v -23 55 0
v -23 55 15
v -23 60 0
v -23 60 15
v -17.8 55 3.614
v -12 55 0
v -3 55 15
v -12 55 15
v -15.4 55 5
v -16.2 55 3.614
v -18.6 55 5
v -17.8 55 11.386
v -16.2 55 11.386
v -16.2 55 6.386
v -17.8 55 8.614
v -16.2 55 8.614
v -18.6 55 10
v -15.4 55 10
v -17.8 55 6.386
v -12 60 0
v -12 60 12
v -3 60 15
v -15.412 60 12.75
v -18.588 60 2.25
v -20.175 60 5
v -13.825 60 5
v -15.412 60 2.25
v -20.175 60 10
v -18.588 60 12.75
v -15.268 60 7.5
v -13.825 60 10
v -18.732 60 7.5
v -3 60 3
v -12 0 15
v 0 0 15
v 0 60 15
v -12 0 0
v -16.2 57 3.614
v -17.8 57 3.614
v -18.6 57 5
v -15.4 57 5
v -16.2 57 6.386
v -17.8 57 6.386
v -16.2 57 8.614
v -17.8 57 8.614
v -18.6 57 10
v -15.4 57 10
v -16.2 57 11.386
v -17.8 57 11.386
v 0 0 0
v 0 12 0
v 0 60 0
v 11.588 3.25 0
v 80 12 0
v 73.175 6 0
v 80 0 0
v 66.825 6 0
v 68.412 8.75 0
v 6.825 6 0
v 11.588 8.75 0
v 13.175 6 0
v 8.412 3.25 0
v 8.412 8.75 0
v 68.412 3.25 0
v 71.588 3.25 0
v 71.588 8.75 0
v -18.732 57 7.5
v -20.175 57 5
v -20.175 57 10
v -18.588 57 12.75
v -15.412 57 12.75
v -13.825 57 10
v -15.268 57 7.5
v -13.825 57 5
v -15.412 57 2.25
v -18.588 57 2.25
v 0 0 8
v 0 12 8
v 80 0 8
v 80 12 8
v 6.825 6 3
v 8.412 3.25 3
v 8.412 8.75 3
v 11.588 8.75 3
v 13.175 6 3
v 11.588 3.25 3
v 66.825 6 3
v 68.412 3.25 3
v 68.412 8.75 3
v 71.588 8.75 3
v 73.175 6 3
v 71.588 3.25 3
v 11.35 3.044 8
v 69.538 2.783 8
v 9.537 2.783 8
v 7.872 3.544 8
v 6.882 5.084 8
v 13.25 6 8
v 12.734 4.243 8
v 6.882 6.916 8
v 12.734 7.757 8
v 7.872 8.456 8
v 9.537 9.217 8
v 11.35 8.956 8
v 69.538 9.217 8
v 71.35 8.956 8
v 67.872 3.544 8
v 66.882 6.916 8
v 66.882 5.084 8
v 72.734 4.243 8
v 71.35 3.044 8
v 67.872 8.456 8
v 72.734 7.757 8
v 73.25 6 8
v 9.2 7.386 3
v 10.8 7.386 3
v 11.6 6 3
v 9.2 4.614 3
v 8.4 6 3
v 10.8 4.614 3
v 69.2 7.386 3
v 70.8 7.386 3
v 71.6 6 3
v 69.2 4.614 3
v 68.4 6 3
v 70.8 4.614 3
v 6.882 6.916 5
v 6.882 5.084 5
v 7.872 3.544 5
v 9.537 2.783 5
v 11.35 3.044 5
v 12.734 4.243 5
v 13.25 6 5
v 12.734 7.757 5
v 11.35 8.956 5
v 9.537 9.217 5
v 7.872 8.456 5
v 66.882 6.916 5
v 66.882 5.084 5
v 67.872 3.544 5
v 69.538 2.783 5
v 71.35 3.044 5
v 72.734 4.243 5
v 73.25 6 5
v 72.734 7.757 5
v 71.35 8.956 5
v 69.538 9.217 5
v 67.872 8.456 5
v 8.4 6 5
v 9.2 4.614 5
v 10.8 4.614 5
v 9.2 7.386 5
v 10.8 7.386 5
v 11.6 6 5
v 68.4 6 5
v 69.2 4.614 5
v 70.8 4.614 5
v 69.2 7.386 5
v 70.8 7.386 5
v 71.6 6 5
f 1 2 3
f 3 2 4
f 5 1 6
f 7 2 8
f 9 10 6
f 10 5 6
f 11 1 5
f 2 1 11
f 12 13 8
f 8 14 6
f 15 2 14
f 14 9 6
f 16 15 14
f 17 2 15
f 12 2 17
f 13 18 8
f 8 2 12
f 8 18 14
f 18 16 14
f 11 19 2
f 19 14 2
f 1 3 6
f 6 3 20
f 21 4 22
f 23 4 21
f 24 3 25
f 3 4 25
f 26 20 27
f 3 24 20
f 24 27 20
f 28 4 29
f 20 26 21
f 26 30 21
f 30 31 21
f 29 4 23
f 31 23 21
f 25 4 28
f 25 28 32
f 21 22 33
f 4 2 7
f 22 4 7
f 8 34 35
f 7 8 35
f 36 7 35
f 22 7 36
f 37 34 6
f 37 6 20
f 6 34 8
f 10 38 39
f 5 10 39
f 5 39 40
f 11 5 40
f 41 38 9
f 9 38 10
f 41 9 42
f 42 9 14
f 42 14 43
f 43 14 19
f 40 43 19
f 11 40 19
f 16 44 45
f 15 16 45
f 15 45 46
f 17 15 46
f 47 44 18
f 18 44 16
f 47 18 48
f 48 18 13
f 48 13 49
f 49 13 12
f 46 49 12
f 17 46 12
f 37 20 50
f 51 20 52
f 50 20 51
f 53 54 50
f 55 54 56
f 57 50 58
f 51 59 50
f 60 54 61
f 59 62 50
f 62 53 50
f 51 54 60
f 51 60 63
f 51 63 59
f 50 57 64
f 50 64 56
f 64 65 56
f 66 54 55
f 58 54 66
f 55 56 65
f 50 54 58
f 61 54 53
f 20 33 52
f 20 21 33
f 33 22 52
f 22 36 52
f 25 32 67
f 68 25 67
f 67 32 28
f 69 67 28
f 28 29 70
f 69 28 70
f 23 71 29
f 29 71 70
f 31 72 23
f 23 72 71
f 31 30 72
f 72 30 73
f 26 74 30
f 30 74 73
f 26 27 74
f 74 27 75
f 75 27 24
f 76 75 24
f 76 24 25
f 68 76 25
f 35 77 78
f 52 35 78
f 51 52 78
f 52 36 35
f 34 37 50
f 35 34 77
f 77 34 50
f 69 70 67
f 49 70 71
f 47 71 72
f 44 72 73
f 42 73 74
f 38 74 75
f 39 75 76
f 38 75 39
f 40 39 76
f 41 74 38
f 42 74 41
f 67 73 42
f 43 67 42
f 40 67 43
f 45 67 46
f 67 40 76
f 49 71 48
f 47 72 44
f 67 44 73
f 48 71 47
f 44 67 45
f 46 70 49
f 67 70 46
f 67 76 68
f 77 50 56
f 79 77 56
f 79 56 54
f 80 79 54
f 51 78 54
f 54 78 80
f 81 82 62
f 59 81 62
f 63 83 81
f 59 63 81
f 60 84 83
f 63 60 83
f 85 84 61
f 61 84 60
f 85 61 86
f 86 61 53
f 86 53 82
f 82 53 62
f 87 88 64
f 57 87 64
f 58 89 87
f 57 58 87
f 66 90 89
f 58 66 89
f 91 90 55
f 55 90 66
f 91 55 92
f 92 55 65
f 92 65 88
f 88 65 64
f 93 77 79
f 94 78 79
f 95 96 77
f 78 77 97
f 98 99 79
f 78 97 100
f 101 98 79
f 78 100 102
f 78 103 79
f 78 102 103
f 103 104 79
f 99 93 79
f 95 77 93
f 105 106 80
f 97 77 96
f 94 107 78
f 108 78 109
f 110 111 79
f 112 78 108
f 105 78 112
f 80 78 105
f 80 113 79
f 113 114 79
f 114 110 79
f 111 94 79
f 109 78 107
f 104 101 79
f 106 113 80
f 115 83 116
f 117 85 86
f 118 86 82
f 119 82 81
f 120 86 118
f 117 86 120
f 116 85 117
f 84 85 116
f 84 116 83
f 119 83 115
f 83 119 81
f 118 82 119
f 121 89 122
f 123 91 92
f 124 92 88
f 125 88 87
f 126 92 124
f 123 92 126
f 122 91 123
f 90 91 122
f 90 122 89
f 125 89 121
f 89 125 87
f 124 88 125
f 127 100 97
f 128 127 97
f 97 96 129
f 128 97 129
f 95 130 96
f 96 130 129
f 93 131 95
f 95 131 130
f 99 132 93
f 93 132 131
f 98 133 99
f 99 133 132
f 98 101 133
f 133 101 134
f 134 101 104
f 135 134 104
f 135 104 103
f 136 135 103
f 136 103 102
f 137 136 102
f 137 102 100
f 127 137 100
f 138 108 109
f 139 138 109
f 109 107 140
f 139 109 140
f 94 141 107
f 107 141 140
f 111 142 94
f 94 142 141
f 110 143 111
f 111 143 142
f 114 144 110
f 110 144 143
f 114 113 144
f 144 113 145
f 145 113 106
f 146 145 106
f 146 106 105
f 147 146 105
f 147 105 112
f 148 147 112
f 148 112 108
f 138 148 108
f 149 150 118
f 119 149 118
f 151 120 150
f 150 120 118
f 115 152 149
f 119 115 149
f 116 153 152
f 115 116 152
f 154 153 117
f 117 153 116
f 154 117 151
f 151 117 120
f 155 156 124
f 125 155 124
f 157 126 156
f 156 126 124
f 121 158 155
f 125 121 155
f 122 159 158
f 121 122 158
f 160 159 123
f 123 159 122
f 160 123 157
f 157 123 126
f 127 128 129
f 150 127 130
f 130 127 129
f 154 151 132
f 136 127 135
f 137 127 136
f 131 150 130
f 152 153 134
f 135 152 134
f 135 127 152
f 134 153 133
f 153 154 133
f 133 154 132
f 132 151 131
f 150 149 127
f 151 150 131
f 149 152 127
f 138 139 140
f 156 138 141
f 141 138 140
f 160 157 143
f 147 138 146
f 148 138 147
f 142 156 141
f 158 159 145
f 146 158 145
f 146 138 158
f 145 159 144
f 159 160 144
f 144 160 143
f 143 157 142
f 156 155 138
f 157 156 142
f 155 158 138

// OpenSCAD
// file: nutsnbolts/data-access.scad
// Norm Nuts and Bolts - a OpenSCAD library
// Copyright (C) 2012  Johannes Kneer

// This program is free software: you can redistribute it and/or modify
// it under the terms of the GNU General Public License as published by
// the Free Software Foundation, either version 3 of the License, or
// (at your option) any later version.

// This program is distributed in the hope that it will be useful,
// but WITHOUT ANY WARRANTY; without even the implied warranty of
// MERCHANTABILITY or FITNESS FOR A PARTICULAR PURPOSE.  See the
// GNU General Public License for more details.

// You should have received a copy of the GNU General Public License
// along with this program.  If not, see <http://www.gnu.org/licenses/>.


// DATABASE ACCESS FUNCTIONS AND CONSTANTS



// == CONSTANTS ==

// screw table access keys
_NB_S_DESC            = 0;
_NB_S_FAMKEY			    = 1;
_NB_S_LENGTH          = 2;
_NB_S_NOTHREAD_LENGTH = 3;

_NB_F_DESC			      = 0;
_NB_F_OUTER_DIA       = 1;
_NB_F_INNER_DIA       = 2;
_NB_F_LEAD            = 3;
_NB_F_KEY             = 4;
_NB_F_KEY_DEPTH       = 5;
_NB_F_HEAD_HEIGHT     = 6;
_NB_F_HEAD_DIA        = 7;
_NB_F_NUT_KEY         = 8;
_NB_F_NUT_HEIGHT      = 9;
_NB_F_PITCH_FINE      = 10;
_NB_F_PITCH_MEDIUM    = 11;
_NB_F_PITCH_COARSE    = 12;


// == FUNCTIONS ==

// _get_screw("descriptor")   with descriptor = M8x25
//   find the line for a general object in the data matrix

function _get_screw(n) = data_screw[search([n], data_screw)[0]];
function _get_screw_fam(n) = data_screw_fam[search([_get_screw(n)[_NB_S_FAMKEY]], data_screw_fam)[0]];

function _get_fam(n) = data_screw_fam[search([n], data_screw_fam)[0]];


// _get_XXXXX("descriptor") functions
// find a single property in the database

function _get_desc(n)        = _get_screw(n)[_NB_S_DESC];
function _get_famkey(n)         = _get_screw(n)[_NB_S_FAMKEY];
function _get_length(n)      = _get_screw(n)[_NB_S_LENGTH];
function _get_nt_length(n)   = _get_screw(n)[_NB_S_NOTHREAD_LENGTH];

function _get_outer_dia(n)   = _get_screw_fam(n)[_NB_F_OUTER_DIA];
function _get_inner_dia(n)   = _get_screw_fam(n)[_NB_F_INNER_DIA];
function _get_lead(n)        = _get_screw_fam(n)[_NB_F_LEAD];
function _get_head_height(n) = _get_screw_fam(n)[_NB_F_HEAD_HEIGHT];
function _get_head_dia(n)    = _get_screw_fam(n)[_NB_F_HEAD_DIA];
function _get_nut_key(n)     = _get_screw_fam(n)[_NB_F_NUT_KEY];
function _get_nut_height(n)  = _get_screw_fam(n)[_NB_F_NUT_HEIGHT];
function _get_fine_pitch(n)  = _get_screw_fam(n)[_NB_F_PITCH_FINE];
function _get_medium_pitch(n)  = _get_screw_fam(n)[_NB_F_PITCH_MEDIUM];
function _get_coarse_pitch(n)  = _get_screw_fam(n)[_NB_F_PITCH_COARSE];
// file: nutsnbolts/materials.scad
// Norm Nuts and Bolts - a OpenSCAD library
// Copyright (C) 2012  Johannes Kneer

// This program is free software: you can redistribute it and/or modify
// it under the terms of the GNU General Public License as published by
// the Free Software Foundation, either version 3 of the License, or
// (at your option) any later version.

// This program is distributed in the hope that it will be useful,
// but WITHOUT ANY WARRANTY; without even the implied warranty of
// MERCHANTABILITY or FITNESS FOR A PARTICULAR PURPOSE.  See the
// GNU General Public License for more details.

// You should have received a copy of the GNU General Public License
// along with this program.  If not, see <http://www.gnu.org/licenses/>.


// MATERIALS

// all materials take a no-parameter that should be used to document
// the exact material in code, the number is not yet used in the code 



module stainless(no="1.4301") {
	color([0.45, 0.43, 0.5]) children([0:$children-1]);
}

module steel(no) {
	color([0.65, 0.67, 0.72]) children([0:$children-1]);
}

module iron(no="ST37") {
	color([0.36, 0.33, 0.33]) children([0:$children-1]);
}

// additional colors
CL_ZINC = [0.4, 0.4, 0.4];
// file: configuration.scad
/* [hidden */
// Increase this if your slicer or printer make holes too tight.
extra_radius = 0.2;

// OD = outside diameter, corner to corner.
m3_nut_od = 6.1;
m3_nut_radius = m3_nut_od/2 + 0.2 + extra_radius;
m3_washer_radius = 3.5 + extra_radius;
m3_washer_height = 0.65;

// Major diameter of metric 3mm thread.
m3_head_height = 3;
m3_major = 2.88;
m3_radius = m3_major/2 + extra_radius;
m3_wide_radius = m3_major/2 + extra_radius + 0.2;

// NEMA17 stepper motors.
motor_shaft_diameter = 5;
motor_shaft_radius = motor_shaft_diameter/2 + extra_radius;

// Frame brackets. M3x8mm screws work best with 3.6 mm brackets.
thickness = 3.6;

// OpenBeam or Misumi. Currently only 15x15 mm, but there is a plan
// to make models more parametric and allow 20x20 mm in the future.
extrusion = 15;

// Placement for the NEMA17 stepper motors.
motor_offset = 44;
motor_length = 47;

// M3 screw hole with loose insertion to be used with a nut.
module M3Screw(length=10)
{
	union()
	{
		// Main shaft
		translate([0, 0, m3_head_height])
		cylinder(r=m3_radius, h=length, $fn=20);
		// Head
		cylinder(r=m3_washer_radius, h=m3_head_height+m3_washer_height, $fn=20);
	}
}

// M3 screw with exact dimensions intended for screwing directly into plastic.
module M3ExactScrew(length=10)
{
	union()
	{
		// Main shaft
		translate([0, 0, m3_head_height])
		cylinder(r=m3_radius - extra_radius, h=length, $fn=20);
		// Head
		cylinder(r=m3_washer_radius, h=m3_head_height+m3_washer_height, $fn=20);
	}
}
// main file
include <configuration.scad>;
include <nutsnbolts/cyl_head_bolt.scad>;
include <nutsnbolts/materials.scad>;

module radial_fan_mount_body()
{
	cube([80,12,8]);  // Horizontal
    rotate([0, 0 , 90]) cube([60,12,15]); // Vertical
    translate([-23,60,0])  rotate([90,0,0]) cube([20,15,5]);

     
}

module radial_fan_mount_cuts()
{
    // Holes For Fan
    translate([10, 6, 3]) nutcatch_parallel("M3", l=3);
    translate([10, 6, 8]) hole_through("M3",14,h=3);
    translate([70, 6, 3]) nutcatch_parallel("M3", l=3);
    translate([70, 6, 8]) hole_through("M3",14,h=3);

    rotate([90,0,0]) translate([-17, 10, 3 - 60]) nutcatch_parallel("M3", l=3);
    rotate([90,0,0]) translate([-17, 10, 8 - 60]) hole_through("M3",14);    
    rotate([90,0,0]) translate([-17,  5, 3 - 60]) nutcatch_parallel("M3", l=3);
    rotate([90,0,0]) translate([-17,  5, 8 - 60]) hole_through("M3",14);    

}

module radialfanmount()
{
   difference(){
       radial_fan_mount_body();
       radial_fan_mount_cuts();
       }

}

radialfanmount();
